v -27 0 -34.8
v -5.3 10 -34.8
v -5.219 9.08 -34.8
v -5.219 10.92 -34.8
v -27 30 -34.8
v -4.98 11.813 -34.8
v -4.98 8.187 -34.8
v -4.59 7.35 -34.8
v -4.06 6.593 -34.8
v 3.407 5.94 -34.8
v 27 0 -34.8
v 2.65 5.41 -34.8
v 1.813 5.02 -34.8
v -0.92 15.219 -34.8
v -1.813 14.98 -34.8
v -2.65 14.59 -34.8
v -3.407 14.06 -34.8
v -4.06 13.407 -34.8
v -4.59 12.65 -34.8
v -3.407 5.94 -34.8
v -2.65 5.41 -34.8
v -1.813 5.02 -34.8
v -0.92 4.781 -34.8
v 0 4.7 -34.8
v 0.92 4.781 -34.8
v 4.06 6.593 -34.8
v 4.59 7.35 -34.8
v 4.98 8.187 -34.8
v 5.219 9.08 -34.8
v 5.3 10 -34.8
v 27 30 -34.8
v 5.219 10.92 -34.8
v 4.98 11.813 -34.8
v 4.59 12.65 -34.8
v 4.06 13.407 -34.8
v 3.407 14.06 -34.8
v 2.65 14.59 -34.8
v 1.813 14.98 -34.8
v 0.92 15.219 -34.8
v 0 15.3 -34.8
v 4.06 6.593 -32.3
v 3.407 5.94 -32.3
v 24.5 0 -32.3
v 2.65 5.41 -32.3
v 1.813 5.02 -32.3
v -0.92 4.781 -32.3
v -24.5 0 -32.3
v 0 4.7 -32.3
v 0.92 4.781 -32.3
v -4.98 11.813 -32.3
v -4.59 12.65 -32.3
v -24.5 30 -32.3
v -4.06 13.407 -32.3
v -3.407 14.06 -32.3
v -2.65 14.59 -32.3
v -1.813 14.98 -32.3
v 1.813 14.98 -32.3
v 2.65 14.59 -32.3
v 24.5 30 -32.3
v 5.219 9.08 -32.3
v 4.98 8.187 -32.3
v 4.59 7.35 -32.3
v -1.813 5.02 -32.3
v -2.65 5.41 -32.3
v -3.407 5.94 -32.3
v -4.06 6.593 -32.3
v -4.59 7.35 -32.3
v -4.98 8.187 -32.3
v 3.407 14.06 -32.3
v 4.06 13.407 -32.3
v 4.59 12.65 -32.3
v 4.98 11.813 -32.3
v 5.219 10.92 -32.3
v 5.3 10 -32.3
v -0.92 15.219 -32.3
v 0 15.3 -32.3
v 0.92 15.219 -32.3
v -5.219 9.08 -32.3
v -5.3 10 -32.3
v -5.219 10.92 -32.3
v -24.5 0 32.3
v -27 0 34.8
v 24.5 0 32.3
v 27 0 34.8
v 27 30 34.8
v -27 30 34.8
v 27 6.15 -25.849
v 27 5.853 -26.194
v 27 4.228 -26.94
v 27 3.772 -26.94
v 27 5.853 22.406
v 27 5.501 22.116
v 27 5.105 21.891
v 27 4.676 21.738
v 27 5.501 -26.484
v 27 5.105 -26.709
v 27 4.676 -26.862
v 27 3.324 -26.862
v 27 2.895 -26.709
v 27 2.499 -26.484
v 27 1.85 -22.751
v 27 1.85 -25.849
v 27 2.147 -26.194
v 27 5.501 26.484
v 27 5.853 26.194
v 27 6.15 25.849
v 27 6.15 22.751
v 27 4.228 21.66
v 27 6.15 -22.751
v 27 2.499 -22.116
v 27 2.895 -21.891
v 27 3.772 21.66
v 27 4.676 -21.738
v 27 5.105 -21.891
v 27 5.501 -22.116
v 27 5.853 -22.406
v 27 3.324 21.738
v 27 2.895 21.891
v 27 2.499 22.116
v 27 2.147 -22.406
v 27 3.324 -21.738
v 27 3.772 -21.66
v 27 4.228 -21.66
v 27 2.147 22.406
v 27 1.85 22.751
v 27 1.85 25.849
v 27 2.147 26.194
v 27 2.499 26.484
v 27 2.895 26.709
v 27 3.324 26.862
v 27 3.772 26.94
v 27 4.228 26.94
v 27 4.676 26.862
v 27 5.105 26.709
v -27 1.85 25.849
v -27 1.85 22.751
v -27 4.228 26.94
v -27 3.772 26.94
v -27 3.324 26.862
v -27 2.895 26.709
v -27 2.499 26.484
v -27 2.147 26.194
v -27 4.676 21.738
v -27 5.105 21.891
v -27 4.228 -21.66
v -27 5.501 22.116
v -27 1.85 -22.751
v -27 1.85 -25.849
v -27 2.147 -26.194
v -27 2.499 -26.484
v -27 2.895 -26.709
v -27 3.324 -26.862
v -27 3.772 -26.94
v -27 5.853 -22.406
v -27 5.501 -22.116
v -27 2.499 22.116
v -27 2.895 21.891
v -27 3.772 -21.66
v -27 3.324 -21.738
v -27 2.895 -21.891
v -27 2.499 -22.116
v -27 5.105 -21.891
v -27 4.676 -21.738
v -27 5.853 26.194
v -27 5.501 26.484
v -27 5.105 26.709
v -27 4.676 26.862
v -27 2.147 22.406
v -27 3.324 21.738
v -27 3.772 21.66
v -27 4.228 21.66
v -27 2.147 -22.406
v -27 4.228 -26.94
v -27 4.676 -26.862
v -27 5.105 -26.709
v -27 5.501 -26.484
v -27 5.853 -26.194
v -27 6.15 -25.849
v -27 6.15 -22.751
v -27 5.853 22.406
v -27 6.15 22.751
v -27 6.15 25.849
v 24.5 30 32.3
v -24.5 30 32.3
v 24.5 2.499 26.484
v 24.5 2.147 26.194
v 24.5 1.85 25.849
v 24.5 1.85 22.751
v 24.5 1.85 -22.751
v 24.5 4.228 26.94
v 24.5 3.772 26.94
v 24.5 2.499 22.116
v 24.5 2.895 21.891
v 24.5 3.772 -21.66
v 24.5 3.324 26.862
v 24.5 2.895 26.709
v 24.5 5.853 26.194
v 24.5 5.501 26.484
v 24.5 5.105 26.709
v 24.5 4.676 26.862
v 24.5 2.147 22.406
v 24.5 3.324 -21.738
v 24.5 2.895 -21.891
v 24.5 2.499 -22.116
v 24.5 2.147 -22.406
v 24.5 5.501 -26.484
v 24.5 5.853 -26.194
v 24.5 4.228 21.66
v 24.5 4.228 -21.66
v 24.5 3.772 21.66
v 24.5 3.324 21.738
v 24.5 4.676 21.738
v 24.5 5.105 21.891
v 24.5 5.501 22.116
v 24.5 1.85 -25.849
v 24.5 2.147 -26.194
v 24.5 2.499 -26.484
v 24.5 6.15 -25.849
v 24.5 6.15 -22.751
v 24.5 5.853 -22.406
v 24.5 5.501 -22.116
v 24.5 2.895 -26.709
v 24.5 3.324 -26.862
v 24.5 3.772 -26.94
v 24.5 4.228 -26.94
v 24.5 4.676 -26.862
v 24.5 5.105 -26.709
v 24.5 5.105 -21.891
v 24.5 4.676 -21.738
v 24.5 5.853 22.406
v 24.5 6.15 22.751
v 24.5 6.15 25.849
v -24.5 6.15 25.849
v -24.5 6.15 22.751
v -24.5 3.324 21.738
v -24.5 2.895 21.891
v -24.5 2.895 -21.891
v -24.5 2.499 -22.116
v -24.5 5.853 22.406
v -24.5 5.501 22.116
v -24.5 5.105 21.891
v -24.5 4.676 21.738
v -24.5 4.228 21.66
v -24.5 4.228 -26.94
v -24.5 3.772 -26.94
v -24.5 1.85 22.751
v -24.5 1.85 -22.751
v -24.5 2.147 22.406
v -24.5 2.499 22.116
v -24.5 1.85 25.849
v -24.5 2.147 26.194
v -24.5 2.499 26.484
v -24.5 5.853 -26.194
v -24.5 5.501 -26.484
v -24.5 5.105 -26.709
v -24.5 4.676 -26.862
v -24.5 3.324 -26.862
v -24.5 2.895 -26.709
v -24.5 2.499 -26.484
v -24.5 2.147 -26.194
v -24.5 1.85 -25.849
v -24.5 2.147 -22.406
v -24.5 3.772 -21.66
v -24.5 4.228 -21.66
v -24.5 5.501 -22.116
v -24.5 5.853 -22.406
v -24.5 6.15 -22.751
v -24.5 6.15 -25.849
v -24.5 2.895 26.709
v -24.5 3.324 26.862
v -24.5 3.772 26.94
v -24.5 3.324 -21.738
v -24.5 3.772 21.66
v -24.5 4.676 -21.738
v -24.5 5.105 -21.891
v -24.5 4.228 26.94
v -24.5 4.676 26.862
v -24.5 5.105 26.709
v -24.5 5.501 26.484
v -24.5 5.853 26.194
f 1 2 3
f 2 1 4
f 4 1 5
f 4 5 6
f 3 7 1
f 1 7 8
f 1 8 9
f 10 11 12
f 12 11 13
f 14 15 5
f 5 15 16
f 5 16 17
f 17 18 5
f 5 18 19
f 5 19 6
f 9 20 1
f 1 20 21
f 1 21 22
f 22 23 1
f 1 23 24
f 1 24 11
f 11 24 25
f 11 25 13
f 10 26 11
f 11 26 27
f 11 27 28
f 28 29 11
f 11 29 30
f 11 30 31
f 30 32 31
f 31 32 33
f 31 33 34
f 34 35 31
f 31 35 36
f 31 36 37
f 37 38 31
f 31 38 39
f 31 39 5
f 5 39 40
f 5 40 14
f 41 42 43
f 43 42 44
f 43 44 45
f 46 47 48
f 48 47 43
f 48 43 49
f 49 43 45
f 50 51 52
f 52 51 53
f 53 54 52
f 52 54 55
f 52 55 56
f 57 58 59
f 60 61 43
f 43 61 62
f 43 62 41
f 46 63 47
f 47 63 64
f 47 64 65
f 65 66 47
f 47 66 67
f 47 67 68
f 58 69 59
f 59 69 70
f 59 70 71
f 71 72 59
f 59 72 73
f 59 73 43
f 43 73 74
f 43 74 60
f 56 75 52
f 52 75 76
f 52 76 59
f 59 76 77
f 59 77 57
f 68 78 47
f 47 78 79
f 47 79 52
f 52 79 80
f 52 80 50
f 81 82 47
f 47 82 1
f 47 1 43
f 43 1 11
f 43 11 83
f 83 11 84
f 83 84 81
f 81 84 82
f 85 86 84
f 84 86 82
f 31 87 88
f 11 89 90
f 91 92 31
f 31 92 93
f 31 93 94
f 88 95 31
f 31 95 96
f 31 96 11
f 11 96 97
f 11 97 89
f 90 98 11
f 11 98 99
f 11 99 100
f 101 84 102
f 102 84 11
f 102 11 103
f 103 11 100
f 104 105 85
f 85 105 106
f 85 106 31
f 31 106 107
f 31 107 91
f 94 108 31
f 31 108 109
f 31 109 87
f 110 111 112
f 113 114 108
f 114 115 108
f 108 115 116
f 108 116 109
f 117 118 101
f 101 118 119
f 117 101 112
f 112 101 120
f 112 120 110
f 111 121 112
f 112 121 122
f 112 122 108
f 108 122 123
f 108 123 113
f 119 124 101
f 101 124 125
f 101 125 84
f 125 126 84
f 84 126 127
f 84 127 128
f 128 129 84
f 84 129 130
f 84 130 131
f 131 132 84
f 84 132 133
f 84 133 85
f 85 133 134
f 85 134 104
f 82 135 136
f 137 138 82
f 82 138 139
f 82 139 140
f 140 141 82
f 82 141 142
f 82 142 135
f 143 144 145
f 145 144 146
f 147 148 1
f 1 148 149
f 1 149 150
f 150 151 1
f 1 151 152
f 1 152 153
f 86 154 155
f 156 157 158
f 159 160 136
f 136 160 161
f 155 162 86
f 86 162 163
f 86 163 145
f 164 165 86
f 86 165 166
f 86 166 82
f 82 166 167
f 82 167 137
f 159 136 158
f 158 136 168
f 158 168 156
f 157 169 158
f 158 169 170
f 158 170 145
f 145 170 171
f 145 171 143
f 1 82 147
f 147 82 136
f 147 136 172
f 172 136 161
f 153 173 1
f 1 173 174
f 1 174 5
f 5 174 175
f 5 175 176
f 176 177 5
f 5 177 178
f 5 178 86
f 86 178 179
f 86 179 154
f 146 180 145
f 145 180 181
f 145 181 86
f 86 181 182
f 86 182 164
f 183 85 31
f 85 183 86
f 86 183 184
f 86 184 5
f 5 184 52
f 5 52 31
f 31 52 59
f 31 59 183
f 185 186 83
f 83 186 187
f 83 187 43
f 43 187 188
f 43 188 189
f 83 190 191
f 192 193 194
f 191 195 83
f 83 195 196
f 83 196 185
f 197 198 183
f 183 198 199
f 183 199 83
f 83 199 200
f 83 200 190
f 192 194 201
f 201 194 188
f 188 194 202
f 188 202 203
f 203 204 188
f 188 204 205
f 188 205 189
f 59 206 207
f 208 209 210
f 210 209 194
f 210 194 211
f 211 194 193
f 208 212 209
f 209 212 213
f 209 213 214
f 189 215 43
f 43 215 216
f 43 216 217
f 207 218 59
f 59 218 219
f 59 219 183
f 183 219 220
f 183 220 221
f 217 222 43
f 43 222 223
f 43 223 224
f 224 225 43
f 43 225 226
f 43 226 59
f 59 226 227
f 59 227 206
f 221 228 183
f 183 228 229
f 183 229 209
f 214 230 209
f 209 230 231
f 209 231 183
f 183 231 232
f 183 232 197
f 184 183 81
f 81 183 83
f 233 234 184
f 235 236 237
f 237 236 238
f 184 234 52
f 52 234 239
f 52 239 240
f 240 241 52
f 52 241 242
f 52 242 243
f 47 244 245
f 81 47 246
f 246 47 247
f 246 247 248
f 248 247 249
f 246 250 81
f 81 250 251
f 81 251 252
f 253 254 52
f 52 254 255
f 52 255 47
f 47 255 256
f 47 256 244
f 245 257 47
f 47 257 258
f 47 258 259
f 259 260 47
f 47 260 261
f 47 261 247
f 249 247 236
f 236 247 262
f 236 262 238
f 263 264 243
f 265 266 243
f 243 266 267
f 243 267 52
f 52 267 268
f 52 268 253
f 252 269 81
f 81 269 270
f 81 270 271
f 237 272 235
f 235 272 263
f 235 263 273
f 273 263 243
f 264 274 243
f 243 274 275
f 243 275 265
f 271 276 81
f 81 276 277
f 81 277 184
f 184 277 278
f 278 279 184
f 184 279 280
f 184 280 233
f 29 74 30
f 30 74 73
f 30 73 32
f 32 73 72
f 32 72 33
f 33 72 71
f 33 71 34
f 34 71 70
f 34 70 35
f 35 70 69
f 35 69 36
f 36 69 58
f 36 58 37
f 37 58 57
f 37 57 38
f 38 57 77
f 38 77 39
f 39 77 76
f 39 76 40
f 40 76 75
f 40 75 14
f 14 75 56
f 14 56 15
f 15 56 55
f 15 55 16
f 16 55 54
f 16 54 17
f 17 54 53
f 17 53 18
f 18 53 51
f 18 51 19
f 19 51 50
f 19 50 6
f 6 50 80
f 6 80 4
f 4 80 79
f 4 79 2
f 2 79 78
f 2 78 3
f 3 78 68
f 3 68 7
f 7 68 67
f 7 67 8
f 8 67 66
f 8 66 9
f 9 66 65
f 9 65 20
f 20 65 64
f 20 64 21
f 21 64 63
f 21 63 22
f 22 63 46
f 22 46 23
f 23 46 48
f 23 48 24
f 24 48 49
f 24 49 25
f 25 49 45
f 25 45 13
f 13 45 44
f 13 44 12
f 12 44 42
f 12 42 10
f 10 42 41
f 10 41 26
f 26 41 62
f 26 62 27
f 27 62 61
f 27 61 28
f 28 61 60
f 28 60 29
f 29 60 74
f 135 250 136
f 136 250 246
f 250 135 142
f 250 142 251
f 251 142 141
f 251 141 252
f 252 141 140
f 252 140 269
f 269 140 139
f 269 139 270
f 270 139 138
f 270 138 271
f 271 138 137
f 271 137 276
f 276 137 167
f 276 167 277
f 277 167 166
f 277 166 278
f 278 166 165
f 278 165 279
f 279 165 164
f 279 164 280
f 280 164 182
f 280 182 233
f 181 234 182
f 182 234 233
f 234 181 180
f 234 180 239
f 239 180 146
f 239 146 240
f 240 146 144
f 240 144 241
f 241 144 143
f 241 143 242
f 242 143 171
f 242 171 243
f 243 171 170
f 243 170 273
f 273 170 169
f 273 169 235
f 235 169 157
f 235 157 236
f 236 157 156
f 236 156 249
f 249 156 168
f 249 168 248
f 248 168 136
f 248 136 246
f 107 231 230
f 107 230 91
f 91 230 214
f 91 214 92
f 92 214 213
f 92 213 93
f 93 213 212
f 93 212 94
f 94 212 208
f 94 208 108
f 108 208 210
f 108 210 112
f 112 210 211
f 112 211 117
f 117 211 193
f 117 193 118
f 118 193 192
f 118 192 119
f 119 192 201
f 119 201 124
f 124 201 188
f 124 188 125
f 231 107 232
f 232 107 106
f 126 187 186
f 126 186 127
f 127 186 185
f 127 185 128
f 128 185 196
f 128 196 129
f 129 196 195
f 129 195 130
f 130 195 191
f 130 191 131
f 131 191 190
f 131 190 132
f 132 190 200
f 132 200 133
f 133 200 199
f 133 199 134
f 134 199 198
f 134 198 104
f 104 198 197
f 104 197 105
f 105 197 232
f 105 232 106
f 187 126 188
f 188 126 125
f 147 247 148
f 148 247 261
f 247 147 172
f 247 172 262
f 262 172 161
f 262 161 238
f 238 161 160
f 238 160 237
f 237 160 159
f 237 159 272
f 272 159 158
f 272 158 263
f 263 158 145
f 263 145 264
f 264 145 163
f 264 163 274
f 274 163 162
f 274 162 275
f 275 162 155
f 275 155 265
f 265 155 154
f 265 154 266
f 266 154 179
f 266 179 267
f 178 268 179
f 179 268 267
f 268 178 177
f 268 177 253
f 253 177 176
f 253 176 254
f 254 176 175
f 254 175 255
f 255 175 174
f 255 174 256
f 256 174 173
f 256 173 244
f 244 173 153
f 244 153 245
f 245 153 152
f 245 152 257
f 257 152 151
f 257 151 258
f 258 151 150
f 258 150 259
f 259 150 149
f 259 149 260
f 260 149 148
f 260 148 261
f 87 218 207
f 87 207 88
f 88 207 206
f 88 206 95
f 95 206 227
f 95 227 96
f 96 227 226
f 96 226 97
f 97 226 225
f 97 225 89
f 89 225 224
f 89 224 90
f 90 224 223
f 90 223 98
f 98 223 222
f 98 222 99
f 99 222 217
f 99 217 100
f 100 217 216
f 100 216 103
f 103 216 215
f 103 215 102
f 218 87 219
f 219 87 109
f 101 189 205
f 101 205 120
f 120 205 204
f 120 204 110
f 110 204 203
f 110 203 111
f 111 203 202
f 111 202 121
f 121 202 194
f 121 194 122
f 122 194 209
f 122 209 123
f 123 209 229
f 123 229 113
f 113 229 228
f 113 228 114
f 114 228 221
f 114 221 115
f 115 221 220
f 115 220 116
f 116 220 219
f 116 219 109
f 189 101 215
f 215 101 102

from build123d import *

# Parameters (mm, degrees)
BOSS_EXTRUDE1_DEPTH = 20
LOFT1_START         = -34.8
LOFT1_DEPTH         = 69.6
LOFT1_START_2       = -28
LOFT1_2_DEPTH       = 56
BOSS_EXTRUDE2_START = -2
BOSS_EXTRUDE2_DEPTH = 50
BOSS_EXTRUDE3_DEPTH = 2.3
BOSS_EXTRUDE4_DEPTH = 2.3
SKETCH9_W           = 56.929943861
SKETCH9_H           = 73.17042397
BOSS_EXTRUDE5_DEPTH = 34
SKETCH10_W          = 54
SKETCH10_H          = 69.6
SKETCH10_W_2        = 50
SKETCH10_H_2        = 65.6
BOSS_EXTRUDE6_DEPTH = 10
SKETCH11_W          = 50
SKETCH11_H          = 65.6
SKETCH11_W_2        = 49
SKETCH11_H_2        = 64.6
BOSS_EXTRUDE7_DEPTH = 30
CUT_EXTRUDE1_START  = -69.6
SKETCH7_R           = 5.3
CUT_EXTRUDE1_DEPTH  = 2.5
CUT_EXTRUDE2_DEPTH  = 70


with BuildPart() as part:
    # Sketch1 → Boss-Extrude1 (new body)
    with BuildSketch(Plane(origin=(0, 0, 0), x_dir=(1, 0, 0), z_dir=(0, 1, 0))):
        Polygon((27, 34.8), (-27, 34.8), (-27, 0), (-27, -34.8), (27, -34.8), (27, 0), align=None)
        Polygon((25, 0), (25, 32.8), (-25, 32.8), (-25, 0), (-25, -32.8), (25, -32.8), align=None, mode=Mode.SUBTRACT)
    extrude(amount=BOSS_EXTRUDE1_DEPTH)

    # Loft1: read off the stored shape, not the designer's step
    # Loft1 outline → Loft1 (add)
    with BuildSketch(Plane.XY.offset(LOFT1_START)):
        Polygon((-27, 20), (27, 20), (25, 35), (-25, 35), align=None)
    extrude(amount=LOFT1_DEPTH)

    # Loft1 2 outline → Loft1 2 (cut)
    with BuildSketch(Plane.YZ.offset(LOFT1_START_2)):
        Polygon((20, 34.8), (35, 32.8), (35, 34.8), align=None)
        Polygon((35, -32.8), (20, -34.8), (35, -34.8), align=None)
    extrude(amount=LOFT1_2_DEPTH, mode=Mode.SUBTRACT)

    # Cut-Loft1: read off the stored shape, not the designer's step
    # Cut-Loft1: loft between two sections, ruled curve by curve
    cut_loft1_from = [
        Edge.make_line((-25, 20, 32.8), (-25, 20, -32.8)),
        Edge.make_line((-25, 20, -32.8), (25, 20, -32.8)),
        Edge.make_line((25, 20, 32.8), (-25, 20, 32.8)),
        Edge.make_line((25, 20, -32.8), (25, 20, 32.8)),
    ]
    cut_loft1_to = [
        Edge.make_line((-23, 35, 30.8), (-23, 35, -30.8)),
        Edge.make_line((-23, 35, -30.8), (23, 35, -30.8)),
        Edge.make_line((23, 35, 30.8), (-23, 35, 30.8)),
        Edge.make_line((23, 35, -30.8), (23, 35, 30.8)),
    ]
    cut_loft1 = Solid(Shell([*[Face.make_surface_from_curves(cut_loft1_from[k], cut_loft1_to[k]) for k in range(4)], Face(Wire(cut_loft1_from)), Face(Wire(cut_loft1_to))]))
    add(cut_loft1, mode=Mode.SUBTRACT)

    # Sketch2 → Boss-Extrude2 (add)
    with BuildSketch(Plane(origin=(27, 0, 0), x_dir=(0, 0, -1), z_dir=(1, 0, 0)).offset(BOSS_EXTRUDE2_START)):
        with BuildLine():
            Line((32.8, 35), (32.8, 38.5))
            ThreePointArc((32.8, 38.5), (32.653553391, 38.853553391), (32.3, 39))
            Line((32.3, 39), (29.6, 39))
            ThreePointArc((29.6, 39), (29.246446609, 38.853553391), (29.1, 38.5))
            Line((29.1, 38.5), (29.1, 37.468550682))
            ThreePointArc((29.1, 37.468550682), (29.138060234, 37.277208966), (29.246446609, 37.114997291))
            Line((29.246446609, 37.114997291), (31.361443901, 35))
            Line((31.361443901, 35), (32.8, 35))
        make_face()
    extrude(amount=-BOSS_EXTRUDE2_DEPTH)


with BuildPart() as body_2:
    # Sketch5 → Boss-Extrude3 (new body)
    with BuildSketch(Plane.XZ):
        with BuildLine():
            Line((-25, -34.8), (-25, -9.8))
            ThreePointArc((-25, -9.8), (0, 15.2), (25, -9.8))
            Line((25, -9.8), (25, -34.8))
            Line((25, -34.8), (27, -34.8))
            Line((27, -34.8), (27, 34.8))
            Line((27, 34.8), (-27, 34.8))
            Line((-27, 34.8), (-27, -34.8))
            Line((-27, -34.8), (-25, -34.8))
        make_face()
    extrude(amount=BOSS_EXTRUDE3_DEPTH)

    # Sketch6 → Boss-Extrude4 (add)
    with BuildSketch(Plane.XZ.offset(2.3)):
        with BuildLine():
            Line((22.7, -34.8), (27, -34.8))
            Line((27, -34.8), (27, 34.8))
            Line((27, 34.8), (-27, 34.8))
            Line((-27, 34.8), (-27, -34.8))
            Line((-27, -34.8), (-22.7, -34.8))
            Line((-22.7, -34.8), (-22.7, -9.8))
            ThreePointArc((-22.7, -9.8), (0, 12.9), (22.7, -9.8))
            Line((22.7, -9.8), (22.7, -34.8))
        make_face()
    extrude(amount=BOSS_EXTRUDE4_DEPTH)


with BuildPart() as body_2_2:
    # Sketch9 → Boss-Extrude5 (new body)
    with BuildSketch(Plane(origin=(0, 20, 0), x_dir=(-1, 0, 0), z_dir=(0, 1, 0))):
        with Locations((0.264790437, -0.308922176)):
            Rectangle(SKETCH9_W, SKETCH9_H)
    extrude(amount=BOSS_EXTRUDE5_DEPTH)


with BuildPart() as part_1:
    add(part.part)

    # Combine1: cut body 2 2
    add(body_2_2.part, mode=Mode.SUBTRACT)

    # Sketch10 → Boss-Extrude6 (add)
    with BuildSketch(Plane(origin=(0, 20, 0), x_dir=(1, 0, 0), z_dir=(0, 1, 0))):
        Rectangle(SKETCH10_W, SKETCH10_H)
        Rectangle(SKETCH10_W_2, SKETCH10_H_2, mode=Mode.SUBTRACT)
    extrude(amount=BOSS_EXTRUDE6_DEPTH)

    # Sketch11 → Boss-Extrude7 (add)
    with BuildSketch(Plane(origin=(0, 30, 0), x_dir=(1, 0, 0), z_dir=(0, 1, 0))):
        Rectangle(SKETCH11_W, SKETCH11_H)
        Rectangle(SKETCH11_W_2, SKETCH11_H_2, mode=Mode.SUBTRACT)
    extrude(amount=-BOSS_EXTRUDE7_DEPTH)

    # Sketch7 → Cut-Extrude1 (cut)
    with BuildSketch(Plane.XY.offset(34.8).offset(CUT_EXTRUDE1_START)):
        with Locations((0, 10)):
            Circle(SKETCH7_R)
    extrude(amount=CUT_EXTRUDE1_DEPTH, mode=Mode.SUBTRACT)

    # Sketch8 → Cut-Extrude2 (cut)
    with BuildSketch(Plane.ZY.offset(27)):
        with BuildLine():
            Line((22.750806662, 6.15), (25.849193338, 6.15))
            ThreePointArc((25.849193338, 6.15), (26.95, 4), (25.849193338, 1.85))
            Line((25.849193338, 1.85), (22.750806662, 1.85))
            ThreePointArc((22.750806662, 1.85), (21.65, 4), (22.750806662, 6.15))
        make_face()
        with BuildLine():
            Line((-25.849193338, 6.15), (-22.750806662, 6.15))
            ThreePointArc((-22.750806662, 6.15), (-21.65, 4), (-22.750806662, 1.85))
            Line((-22.750806662, 1.85), (-25.849193338, 1.85))
            ThreePointArc((-25.849193338, 1.85), (-26.95, 4), (-25.849193338, 6.15))
        make_face()
    extrude(amount=-CUT_EXTRUDE2_DEPTH, mode=Mode.SUBTRACT)


solid = part_1.part
